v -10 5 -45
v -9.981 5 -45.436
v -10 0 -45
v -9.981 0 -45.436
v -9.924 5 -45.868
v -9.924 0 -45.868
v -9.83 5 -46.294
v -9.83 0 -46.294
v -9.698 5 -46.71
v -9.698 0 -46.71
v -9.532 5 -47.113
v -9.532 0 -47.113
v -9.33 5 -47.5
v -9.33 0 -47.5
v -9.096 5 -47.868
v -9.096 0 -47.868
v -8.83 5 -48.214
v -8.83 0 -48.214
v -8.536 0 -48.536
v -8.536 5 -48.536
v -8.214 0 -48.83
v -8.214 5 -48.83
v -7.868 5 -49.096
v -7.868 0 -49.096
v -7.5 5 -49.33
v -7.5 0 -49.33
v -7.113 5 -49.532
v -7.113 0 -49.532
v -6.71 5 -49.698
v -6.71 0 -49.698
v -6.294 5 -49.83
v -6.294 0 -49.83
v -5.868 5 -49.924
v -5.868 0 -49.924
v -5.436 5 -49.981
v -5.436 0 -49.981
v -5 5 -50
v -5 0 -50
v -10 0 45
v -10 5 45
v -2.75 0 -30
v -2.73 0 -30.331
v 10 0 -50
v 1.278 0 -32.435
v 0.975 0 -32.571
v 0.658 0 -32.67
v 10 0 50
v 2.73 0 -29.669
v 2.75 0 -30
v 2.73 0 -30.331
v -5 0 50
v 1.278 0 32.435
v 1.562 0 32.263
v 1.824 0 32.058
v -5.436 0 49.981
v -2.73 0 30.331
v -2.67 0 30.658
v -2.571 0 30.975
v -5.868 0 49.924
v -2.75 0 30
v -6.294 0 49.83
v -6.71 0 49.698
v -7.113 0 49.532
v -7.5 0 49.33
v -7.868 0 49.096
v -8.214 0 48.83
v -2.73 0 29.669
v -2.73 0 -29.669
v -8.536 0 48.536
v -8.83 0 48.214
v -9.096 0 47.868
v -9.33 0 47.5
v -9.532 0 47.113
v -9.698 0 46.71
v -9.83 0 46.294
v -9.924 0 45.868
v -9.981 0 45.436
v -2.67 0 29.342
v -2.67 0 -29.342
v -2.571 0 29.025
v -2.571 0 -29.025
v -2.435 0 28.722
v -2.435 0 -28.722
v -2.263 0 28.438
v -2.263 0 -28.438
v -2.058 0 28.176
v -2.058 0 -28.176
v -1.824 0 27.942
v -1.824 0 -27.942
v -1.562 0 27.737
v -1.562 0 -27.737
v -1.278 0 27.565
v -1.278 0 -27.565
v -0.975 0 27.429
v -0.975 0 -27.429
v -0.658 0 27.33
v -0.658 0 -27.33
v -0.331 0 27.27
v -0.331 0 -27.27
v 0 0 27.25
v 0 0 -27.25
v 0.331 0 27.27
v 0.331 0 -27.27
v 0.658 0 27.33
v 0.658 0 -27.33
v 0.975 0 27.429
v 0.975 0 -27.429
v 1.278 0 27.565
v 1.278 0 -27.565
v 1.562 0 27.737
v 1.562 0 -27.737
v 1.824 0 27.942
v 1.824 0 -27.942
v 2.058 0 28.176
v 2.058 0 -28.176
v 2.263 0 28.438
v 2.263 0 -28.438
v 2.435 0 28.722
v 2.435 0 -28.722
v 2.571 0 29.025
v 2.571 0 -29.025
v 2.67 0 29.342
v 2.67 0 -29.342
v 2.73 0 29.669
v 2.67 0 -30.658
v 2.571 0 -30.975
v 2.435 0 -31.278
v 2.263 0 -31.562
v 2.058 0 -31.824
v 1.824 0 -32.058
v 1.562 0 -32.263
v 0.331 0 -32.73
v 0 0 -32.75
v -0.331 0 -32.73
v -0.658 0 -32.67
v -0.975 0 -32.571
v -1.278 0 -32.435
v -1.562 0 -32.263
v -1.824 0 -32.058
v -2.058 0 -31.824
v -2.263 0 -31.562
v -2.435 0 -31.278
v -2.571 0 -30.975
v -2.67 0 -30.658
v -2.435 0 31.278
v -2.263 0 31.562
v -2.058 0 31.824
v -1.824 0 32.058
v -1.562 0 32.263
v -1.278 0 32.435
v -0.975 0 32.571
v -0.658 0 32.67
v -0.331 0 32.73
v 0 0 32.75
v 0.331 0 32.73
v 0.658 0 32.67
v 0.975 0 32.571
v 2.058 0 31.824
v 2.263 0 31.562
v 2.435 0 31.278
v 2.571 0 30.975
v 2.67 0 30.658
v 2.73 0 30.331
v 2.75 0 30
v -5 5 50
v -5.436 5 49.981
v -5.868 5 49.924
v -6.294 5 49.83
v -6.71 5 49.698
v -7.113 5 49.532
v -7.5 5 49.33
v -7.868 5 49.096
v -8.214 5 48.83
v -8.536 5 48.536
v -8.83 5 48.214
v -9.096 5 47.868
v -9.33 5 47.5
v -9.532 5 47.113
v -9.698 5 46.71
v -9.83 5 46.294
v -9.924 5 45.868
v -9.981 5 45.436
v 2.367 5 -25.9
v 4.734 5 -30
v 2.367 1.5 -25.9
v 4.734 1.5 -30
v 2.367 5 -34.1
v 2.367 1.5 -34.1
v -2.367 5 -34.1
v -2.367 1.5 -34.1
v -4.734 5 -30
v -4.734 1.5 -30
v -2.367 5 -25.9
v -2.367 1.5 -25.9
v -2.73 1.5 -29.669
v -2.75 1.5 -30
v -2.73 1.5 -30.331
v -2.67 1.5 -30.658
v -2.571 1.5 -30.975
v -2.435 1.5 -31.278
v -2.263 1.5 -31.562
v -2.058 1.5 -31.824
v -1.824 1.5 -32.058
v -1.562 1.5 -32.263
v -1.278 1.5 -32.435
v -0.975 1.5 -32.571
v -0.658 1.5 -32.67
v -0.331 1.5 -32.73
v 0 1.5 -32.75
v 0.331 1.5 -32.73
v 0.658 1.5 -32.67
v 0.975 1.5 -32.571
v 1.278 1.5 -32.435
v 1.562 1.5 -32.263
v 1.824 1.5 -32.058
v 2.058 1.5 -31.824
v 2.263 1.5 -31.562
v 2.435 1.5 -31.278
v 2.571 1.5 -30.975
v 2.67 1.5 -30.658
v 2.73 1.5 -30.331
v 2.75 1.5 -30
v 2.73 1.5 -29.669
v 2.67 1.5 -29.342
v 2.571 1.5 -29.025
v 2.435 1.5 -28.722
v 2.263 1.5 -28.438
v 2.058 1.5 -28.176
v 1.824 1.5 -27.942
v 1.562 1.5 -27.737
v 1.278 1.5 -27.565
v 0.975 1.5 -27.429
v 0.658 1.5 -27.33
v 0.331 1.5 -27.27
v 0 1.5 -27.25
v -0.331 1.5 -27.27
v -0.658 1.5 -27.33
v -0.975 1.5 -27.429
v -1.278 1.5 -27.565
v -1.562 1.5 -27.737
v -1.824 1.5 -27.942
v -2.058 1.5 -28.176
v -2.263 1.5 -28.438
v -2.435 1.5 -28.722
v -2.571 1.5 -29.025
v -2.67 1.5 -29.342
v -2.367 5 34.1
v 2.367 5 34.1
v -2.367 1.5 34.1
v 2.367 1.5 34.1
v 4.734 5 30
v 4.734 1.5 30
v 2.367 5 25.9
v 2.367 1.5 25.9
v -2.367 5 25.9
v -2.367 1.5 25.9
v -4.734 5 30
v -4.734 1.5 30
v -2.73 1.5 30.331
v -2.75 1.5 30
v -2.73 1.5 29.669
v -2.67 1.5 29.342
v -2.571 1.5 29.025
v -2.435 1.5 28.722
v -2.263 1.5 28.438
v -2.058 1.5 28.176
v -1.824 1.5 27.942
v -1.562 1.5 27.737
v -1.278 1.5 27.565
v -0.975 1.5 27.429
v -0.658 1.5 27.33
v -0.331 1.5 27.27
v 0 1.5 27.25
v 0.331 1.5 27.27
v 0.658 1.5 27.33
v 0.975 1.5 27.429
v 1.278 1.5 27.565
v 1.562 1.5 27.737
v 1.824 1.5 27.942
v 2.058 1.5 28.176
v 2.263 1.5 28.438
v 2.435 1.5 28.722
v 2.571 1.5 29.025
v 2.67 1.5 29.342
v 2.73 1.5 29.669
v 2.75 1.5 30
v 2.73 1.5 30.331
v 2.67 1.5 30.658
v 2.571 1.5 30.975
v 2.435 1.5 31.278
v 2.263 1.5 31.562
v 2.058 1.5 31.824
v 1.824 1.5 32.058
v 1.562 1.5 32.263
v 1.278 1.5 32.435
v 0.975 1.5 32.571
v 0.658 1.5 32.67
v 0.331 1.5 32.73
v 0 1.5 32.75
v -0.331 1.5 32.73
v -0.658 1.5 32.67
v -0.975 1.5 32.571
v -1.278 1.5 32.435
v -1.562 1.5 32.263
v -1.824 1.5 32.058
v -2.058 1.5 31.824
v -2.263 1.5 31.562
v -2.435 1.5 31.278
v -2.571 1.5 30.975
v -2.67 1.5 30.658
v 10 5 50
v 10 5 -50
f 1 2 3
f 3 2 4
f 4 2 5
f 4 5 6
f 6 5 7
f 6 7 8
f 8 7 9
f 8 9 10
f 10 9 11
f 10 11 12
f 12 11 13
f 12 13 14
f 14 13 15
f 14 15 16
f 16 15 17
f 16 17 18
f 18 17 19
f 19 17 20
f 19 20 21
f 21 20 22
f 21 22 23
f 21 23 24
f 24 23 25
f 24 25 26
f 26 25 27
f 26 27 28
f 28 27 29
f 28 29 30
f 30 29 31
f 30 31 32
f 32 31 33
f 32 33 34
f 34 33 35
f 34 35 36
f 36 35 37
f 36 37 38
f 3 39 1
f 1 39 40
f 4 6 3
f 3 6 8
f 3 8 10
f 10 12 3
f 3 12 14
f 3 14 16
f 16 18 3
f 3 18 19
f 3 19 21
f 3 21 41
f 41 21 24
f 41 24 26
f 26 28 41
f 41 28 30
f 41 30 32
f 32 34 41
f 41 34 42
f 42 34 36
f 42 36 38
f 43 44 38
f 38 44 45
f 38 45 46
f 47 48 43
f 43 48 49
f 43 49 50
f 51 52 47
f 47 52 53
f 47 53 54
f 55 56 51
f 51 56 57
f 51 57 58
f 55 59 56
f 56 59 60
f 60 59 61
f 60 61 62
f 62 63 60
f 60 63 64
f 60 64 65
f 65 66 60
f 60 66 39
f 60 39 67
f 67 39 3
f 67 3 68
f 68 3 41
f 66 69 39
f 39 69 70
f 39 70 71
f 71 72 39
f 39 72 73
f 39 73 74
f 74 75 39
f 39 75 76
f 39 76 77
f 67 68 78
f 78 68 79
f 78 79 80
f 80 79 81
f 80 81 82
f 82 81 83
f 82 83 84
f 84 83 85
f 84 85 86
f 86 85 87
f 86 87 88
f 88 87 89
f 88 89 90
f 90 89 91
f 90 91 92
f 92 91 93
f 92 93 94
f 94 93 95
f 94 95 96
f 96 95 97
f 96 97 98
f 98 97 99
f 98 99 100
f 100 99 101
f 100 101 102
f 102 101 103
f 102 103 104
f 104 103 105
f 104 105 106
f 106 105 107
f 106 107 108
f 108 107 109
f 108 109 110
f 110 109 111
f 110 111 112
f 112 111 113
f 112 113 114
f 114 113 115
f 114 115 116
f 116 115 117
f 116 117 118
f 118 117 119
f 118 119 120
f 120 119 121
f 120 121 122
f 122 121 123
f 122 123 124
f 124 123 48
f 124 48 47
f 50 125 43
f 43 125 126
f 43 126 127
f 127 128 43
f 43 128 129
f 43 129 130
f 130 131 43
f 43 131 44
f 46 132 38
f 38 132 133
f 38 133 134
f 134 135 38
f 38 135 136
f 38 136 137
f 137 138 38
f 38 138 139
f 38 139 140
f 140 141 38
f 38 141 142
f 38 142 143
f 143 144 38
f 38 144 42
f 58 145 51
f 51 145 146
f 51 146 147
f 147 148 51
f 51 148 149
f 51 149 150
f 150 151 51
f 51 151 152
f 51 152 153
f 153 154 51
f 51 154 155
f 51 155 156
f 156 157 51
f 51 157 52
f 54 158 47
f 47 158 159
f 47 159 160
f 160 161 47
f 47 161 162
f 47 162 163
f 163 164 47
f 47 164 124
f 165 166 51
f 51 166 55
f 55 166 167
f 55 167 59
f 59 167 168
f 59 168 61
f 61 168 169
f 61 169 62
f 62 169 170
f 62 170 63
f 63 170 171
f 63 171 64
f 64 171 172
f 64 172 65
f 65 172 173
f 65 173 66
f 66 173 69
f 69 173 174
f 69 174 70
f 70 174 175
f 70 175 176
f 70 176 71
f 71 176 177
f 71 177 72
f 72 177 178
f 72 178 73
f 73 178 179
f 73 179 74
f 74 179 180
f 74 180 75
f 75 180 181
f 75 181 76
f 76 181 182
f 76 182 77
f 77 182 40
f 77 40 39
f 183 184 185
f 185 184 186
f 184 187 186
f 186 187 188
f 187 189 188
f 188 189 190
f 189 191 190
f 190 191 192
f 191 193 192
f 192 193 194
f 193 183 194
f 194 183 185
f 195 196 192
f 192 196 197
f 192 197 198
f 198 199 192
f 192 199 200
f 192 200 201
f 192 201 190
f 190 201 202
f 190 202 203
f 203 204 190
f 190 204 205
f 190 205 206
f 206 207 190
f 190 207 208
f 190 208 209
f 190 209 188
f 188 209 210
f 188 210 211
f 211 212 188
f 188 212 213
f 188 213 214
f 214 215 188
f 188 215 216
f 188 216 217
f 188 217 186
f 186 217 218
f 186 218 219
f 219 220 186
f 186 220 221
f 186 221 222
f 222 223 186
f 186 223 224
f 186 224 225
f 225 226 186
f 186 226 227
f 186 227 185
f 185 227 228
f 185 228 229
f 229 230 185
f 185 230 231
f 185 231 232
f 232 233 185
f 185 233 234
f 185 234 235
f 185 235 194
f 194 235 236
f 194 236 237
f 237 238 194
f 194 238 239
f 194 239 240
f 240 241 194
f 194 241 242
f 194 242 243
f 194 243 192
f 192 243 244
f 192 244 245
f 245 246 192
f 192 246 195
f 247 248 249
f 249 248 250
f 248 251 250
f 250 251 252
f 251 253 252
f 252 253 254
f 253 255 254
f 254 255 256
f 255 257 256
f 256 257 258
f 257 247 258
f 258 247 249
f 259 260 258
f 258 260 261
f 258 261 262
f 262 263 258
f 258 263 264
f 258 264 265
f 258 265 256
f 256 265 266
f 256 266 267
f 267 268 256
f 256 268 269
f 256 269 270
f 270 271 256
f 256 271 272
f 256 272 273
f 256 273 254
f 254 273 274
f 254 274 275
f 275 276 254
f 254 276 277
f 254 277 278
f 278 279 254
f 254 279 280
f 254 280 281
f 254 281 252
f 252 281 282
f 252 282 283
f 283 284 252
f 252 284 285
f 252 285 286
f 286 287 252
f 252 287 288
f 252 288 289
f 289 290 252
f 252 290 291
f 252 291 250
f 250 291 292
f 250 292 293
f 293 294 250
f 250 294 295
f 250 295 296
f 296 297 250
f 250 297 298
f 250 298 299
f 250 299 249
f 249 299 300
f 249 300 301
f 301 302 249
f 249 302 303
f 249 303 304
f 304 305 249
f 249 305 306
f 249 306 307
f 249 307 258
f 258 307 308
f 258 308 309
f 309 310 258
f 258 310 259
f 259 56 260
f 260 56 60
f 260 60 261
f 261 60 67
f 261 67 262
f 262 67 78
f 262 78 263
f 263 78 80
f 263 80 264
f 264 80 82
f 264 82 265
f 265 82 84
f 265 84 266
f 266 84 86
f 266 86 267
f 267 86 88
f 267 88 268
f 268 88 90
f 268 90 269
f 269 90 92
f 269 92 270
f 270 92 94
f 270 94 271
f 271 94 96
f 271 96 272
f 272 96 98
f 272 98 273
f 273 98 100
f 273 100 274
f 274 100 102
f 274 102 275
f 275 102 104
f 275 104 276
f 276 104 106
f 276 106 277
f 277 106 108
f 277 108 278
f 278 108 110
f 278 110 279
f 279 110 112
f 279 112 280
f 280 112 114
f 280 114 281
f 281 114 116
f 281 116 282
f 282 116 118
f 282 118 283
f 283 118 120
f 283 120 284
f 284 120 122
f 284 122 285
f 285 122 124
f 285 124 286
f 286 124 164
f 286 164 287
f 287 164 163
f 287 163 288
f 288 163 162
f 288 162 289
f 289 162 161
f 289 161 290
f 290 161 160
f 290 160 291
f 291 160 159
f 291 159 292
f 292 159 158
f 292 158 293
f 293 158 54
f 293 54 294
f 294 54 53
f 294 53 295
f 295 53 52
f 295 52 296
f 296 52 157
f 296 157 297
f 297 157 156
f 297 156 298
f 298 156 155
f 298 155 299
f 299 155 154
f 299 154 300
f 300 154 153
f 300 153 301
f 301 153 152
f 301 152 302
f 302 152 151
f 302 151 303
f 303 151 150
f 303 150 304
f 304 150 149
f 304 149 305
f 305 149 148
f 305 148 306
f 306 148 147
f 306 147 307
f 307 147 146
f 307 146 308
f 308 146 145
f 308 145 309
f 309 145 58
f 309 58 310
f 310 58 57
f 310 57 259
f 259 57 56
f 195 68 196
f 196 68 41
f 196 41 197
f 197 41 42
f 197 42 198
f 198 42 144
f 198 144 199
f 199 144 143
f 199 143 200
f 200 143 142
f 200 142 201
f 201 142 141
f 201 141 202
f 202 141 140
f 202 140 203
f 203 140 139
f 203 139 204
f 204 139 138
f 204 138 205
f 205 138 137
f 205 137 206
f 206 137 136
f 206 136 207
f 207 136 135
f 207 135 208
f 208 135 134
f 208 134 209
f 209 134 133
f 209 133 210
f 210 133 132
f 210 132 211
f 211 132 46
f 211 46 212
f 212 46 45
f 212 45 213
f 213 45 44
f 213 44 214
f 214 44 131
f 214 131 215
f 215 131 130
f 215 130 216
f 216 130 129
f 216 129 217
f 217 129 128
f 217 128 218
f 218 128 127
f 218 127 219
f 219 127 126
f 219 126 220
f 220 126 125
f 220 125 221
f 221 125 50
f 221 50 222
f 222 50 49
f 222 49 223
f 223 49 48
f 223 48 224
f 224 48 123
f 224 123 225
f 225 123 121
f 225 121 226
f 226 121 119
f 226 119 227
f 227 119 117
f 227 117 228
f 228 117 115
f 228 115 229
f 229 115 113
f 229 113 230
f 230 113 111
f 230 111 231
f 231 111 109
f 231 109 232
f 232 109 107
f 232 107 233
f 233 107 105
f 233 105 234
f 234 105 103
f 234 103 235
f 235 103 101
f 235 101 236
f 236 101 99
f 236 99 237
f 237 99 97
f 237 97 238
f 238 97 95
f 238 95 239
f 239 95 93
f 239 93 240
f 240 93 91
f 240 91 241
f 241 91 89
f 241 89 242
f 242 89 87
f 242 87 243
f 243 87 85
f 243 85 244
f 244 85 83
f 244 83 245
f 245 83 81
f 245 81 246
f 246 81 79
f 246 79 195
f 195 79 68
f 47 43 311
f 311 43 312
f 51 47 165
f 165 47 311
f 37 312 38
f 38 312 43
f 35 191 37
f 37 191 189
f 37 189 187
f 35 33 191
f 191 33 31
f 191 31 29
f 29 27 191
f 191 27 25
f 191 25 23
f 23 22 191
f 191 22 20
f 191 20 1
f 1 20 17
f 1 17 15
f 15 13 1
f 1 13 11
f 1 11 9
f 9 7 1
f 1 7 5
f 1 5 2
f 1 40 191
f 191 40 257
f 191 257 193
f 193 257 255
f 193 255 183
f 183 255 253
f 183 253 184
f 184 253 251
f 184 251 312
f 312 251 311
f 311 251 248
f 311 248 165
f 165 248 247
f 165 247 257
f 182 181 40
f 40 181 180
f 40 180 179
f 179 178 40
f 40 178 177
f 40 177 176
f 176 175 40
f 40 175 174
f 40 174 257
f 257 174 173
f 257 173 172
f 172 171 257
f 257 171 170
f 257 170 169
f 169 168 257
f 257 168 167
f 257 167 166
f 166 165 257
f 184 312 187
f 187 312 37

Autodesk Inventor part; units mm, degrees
ref_plane "YZ Plane" through (0, 0, 0) normal (1, 0, 0) x (0, 1, 0)
ref_plane "XZ Plane" through (0, 0, 0) normal (0, 1, 0) x (-1, 0, 0)
ref_plane "XY Plane" through (0, 0, 0) normal (0, 0, 1) x (1, 0, 0)
sketch "Sketch1" plane through (0, 0, 0) normal (0, 1, 0) x (-1, 0, 0)
  line L0 (-10, 50) -> (10, 50)
  line L1 (10, 50) -> (10, -50)
  line L2 (10, -50) -> (-10, -50)
  line L3 (-10, -50) -> (-10, 50)
  line L4 (-10, 50) -> (10, -50) construction
  line L5 (10, 50) -> (-10, -50) construction
  circle A0 centre (0, 30) radius 2.75
  circle A1 centre (0, -30) radius 2.75
  point P0 (0, 0)
  dimension "d0" = 20
  dimension "d1" = 100
  dimension "d2" = 5.5
  dimension "d3" = 20
  dimension "d4" = 20
extrude "Extrusion1" add sketch "Sketch1" along normal blind 5
sketch "Sketch2" plane through (0, 5, 0) normal (0, 1, 0) x (1, 0, 0)
  circle A0 centre (0, -30) radius 2.75 projected
  circle A1 centre (0, -30) radius 4.1
  circle A2 centre (0, 30) radius 2.75 projected
  circle A3 centre (0, 30) radius 4.1
  line L0 (-4.7343, -30) -> (-2.3671, -25.9)
  line L1 (-2.3671, -25.9) -> (2.3671, -25.9)
  line L2 (2.3671, -25.9) -> (4.7343, -30)
  line L3 (4.7343, -30) -> (2.3671, -34.1)
  line L4 (2.3671, -34.1) -> (-2.3671, -34.1)
  line L5 (-2.3671, -34.1) -> (-4.7343, -30)
  line L6 (-4.7343, 30) -> (-2.3671, 34.1)
  line L7 (-2.3671, 34.1) -> (2.3671, 34.1)
  line L8 (2.3671, 34.1) -> (4.7343, 30)
  line L9 (4.7343, 30) -> (2.3671, 25.9)
  line L10 (2.3671, 25.9) -> (-2.3671, 25.9)
  line L11 (-2.3671, 25.9) -> (-4.7343, 30)
  point P0 (0, 0)
  dimension "d7" = 8.2
extrude "Extrusion2" cut sketch "Sketch2" against normal blind 3.5 contours A0 | A1 | A1 L2 L3 | A1 L1 L2 | L3 L4 A1 | A1 L0 L1 | L4 L5 A1 | A1 L5 L0 | A2 | A3 | A3 L8 L9 | A3 L7 L8 | L9 L10 A3 | A3 L6 L7 | L10 L11 A3 | A3 L11 L6
fillet "Fillet1" radius 5 2 edges at (-10, 2.5, 50) (-10, 2.5, -50)
properties part number "Rubberplate"
